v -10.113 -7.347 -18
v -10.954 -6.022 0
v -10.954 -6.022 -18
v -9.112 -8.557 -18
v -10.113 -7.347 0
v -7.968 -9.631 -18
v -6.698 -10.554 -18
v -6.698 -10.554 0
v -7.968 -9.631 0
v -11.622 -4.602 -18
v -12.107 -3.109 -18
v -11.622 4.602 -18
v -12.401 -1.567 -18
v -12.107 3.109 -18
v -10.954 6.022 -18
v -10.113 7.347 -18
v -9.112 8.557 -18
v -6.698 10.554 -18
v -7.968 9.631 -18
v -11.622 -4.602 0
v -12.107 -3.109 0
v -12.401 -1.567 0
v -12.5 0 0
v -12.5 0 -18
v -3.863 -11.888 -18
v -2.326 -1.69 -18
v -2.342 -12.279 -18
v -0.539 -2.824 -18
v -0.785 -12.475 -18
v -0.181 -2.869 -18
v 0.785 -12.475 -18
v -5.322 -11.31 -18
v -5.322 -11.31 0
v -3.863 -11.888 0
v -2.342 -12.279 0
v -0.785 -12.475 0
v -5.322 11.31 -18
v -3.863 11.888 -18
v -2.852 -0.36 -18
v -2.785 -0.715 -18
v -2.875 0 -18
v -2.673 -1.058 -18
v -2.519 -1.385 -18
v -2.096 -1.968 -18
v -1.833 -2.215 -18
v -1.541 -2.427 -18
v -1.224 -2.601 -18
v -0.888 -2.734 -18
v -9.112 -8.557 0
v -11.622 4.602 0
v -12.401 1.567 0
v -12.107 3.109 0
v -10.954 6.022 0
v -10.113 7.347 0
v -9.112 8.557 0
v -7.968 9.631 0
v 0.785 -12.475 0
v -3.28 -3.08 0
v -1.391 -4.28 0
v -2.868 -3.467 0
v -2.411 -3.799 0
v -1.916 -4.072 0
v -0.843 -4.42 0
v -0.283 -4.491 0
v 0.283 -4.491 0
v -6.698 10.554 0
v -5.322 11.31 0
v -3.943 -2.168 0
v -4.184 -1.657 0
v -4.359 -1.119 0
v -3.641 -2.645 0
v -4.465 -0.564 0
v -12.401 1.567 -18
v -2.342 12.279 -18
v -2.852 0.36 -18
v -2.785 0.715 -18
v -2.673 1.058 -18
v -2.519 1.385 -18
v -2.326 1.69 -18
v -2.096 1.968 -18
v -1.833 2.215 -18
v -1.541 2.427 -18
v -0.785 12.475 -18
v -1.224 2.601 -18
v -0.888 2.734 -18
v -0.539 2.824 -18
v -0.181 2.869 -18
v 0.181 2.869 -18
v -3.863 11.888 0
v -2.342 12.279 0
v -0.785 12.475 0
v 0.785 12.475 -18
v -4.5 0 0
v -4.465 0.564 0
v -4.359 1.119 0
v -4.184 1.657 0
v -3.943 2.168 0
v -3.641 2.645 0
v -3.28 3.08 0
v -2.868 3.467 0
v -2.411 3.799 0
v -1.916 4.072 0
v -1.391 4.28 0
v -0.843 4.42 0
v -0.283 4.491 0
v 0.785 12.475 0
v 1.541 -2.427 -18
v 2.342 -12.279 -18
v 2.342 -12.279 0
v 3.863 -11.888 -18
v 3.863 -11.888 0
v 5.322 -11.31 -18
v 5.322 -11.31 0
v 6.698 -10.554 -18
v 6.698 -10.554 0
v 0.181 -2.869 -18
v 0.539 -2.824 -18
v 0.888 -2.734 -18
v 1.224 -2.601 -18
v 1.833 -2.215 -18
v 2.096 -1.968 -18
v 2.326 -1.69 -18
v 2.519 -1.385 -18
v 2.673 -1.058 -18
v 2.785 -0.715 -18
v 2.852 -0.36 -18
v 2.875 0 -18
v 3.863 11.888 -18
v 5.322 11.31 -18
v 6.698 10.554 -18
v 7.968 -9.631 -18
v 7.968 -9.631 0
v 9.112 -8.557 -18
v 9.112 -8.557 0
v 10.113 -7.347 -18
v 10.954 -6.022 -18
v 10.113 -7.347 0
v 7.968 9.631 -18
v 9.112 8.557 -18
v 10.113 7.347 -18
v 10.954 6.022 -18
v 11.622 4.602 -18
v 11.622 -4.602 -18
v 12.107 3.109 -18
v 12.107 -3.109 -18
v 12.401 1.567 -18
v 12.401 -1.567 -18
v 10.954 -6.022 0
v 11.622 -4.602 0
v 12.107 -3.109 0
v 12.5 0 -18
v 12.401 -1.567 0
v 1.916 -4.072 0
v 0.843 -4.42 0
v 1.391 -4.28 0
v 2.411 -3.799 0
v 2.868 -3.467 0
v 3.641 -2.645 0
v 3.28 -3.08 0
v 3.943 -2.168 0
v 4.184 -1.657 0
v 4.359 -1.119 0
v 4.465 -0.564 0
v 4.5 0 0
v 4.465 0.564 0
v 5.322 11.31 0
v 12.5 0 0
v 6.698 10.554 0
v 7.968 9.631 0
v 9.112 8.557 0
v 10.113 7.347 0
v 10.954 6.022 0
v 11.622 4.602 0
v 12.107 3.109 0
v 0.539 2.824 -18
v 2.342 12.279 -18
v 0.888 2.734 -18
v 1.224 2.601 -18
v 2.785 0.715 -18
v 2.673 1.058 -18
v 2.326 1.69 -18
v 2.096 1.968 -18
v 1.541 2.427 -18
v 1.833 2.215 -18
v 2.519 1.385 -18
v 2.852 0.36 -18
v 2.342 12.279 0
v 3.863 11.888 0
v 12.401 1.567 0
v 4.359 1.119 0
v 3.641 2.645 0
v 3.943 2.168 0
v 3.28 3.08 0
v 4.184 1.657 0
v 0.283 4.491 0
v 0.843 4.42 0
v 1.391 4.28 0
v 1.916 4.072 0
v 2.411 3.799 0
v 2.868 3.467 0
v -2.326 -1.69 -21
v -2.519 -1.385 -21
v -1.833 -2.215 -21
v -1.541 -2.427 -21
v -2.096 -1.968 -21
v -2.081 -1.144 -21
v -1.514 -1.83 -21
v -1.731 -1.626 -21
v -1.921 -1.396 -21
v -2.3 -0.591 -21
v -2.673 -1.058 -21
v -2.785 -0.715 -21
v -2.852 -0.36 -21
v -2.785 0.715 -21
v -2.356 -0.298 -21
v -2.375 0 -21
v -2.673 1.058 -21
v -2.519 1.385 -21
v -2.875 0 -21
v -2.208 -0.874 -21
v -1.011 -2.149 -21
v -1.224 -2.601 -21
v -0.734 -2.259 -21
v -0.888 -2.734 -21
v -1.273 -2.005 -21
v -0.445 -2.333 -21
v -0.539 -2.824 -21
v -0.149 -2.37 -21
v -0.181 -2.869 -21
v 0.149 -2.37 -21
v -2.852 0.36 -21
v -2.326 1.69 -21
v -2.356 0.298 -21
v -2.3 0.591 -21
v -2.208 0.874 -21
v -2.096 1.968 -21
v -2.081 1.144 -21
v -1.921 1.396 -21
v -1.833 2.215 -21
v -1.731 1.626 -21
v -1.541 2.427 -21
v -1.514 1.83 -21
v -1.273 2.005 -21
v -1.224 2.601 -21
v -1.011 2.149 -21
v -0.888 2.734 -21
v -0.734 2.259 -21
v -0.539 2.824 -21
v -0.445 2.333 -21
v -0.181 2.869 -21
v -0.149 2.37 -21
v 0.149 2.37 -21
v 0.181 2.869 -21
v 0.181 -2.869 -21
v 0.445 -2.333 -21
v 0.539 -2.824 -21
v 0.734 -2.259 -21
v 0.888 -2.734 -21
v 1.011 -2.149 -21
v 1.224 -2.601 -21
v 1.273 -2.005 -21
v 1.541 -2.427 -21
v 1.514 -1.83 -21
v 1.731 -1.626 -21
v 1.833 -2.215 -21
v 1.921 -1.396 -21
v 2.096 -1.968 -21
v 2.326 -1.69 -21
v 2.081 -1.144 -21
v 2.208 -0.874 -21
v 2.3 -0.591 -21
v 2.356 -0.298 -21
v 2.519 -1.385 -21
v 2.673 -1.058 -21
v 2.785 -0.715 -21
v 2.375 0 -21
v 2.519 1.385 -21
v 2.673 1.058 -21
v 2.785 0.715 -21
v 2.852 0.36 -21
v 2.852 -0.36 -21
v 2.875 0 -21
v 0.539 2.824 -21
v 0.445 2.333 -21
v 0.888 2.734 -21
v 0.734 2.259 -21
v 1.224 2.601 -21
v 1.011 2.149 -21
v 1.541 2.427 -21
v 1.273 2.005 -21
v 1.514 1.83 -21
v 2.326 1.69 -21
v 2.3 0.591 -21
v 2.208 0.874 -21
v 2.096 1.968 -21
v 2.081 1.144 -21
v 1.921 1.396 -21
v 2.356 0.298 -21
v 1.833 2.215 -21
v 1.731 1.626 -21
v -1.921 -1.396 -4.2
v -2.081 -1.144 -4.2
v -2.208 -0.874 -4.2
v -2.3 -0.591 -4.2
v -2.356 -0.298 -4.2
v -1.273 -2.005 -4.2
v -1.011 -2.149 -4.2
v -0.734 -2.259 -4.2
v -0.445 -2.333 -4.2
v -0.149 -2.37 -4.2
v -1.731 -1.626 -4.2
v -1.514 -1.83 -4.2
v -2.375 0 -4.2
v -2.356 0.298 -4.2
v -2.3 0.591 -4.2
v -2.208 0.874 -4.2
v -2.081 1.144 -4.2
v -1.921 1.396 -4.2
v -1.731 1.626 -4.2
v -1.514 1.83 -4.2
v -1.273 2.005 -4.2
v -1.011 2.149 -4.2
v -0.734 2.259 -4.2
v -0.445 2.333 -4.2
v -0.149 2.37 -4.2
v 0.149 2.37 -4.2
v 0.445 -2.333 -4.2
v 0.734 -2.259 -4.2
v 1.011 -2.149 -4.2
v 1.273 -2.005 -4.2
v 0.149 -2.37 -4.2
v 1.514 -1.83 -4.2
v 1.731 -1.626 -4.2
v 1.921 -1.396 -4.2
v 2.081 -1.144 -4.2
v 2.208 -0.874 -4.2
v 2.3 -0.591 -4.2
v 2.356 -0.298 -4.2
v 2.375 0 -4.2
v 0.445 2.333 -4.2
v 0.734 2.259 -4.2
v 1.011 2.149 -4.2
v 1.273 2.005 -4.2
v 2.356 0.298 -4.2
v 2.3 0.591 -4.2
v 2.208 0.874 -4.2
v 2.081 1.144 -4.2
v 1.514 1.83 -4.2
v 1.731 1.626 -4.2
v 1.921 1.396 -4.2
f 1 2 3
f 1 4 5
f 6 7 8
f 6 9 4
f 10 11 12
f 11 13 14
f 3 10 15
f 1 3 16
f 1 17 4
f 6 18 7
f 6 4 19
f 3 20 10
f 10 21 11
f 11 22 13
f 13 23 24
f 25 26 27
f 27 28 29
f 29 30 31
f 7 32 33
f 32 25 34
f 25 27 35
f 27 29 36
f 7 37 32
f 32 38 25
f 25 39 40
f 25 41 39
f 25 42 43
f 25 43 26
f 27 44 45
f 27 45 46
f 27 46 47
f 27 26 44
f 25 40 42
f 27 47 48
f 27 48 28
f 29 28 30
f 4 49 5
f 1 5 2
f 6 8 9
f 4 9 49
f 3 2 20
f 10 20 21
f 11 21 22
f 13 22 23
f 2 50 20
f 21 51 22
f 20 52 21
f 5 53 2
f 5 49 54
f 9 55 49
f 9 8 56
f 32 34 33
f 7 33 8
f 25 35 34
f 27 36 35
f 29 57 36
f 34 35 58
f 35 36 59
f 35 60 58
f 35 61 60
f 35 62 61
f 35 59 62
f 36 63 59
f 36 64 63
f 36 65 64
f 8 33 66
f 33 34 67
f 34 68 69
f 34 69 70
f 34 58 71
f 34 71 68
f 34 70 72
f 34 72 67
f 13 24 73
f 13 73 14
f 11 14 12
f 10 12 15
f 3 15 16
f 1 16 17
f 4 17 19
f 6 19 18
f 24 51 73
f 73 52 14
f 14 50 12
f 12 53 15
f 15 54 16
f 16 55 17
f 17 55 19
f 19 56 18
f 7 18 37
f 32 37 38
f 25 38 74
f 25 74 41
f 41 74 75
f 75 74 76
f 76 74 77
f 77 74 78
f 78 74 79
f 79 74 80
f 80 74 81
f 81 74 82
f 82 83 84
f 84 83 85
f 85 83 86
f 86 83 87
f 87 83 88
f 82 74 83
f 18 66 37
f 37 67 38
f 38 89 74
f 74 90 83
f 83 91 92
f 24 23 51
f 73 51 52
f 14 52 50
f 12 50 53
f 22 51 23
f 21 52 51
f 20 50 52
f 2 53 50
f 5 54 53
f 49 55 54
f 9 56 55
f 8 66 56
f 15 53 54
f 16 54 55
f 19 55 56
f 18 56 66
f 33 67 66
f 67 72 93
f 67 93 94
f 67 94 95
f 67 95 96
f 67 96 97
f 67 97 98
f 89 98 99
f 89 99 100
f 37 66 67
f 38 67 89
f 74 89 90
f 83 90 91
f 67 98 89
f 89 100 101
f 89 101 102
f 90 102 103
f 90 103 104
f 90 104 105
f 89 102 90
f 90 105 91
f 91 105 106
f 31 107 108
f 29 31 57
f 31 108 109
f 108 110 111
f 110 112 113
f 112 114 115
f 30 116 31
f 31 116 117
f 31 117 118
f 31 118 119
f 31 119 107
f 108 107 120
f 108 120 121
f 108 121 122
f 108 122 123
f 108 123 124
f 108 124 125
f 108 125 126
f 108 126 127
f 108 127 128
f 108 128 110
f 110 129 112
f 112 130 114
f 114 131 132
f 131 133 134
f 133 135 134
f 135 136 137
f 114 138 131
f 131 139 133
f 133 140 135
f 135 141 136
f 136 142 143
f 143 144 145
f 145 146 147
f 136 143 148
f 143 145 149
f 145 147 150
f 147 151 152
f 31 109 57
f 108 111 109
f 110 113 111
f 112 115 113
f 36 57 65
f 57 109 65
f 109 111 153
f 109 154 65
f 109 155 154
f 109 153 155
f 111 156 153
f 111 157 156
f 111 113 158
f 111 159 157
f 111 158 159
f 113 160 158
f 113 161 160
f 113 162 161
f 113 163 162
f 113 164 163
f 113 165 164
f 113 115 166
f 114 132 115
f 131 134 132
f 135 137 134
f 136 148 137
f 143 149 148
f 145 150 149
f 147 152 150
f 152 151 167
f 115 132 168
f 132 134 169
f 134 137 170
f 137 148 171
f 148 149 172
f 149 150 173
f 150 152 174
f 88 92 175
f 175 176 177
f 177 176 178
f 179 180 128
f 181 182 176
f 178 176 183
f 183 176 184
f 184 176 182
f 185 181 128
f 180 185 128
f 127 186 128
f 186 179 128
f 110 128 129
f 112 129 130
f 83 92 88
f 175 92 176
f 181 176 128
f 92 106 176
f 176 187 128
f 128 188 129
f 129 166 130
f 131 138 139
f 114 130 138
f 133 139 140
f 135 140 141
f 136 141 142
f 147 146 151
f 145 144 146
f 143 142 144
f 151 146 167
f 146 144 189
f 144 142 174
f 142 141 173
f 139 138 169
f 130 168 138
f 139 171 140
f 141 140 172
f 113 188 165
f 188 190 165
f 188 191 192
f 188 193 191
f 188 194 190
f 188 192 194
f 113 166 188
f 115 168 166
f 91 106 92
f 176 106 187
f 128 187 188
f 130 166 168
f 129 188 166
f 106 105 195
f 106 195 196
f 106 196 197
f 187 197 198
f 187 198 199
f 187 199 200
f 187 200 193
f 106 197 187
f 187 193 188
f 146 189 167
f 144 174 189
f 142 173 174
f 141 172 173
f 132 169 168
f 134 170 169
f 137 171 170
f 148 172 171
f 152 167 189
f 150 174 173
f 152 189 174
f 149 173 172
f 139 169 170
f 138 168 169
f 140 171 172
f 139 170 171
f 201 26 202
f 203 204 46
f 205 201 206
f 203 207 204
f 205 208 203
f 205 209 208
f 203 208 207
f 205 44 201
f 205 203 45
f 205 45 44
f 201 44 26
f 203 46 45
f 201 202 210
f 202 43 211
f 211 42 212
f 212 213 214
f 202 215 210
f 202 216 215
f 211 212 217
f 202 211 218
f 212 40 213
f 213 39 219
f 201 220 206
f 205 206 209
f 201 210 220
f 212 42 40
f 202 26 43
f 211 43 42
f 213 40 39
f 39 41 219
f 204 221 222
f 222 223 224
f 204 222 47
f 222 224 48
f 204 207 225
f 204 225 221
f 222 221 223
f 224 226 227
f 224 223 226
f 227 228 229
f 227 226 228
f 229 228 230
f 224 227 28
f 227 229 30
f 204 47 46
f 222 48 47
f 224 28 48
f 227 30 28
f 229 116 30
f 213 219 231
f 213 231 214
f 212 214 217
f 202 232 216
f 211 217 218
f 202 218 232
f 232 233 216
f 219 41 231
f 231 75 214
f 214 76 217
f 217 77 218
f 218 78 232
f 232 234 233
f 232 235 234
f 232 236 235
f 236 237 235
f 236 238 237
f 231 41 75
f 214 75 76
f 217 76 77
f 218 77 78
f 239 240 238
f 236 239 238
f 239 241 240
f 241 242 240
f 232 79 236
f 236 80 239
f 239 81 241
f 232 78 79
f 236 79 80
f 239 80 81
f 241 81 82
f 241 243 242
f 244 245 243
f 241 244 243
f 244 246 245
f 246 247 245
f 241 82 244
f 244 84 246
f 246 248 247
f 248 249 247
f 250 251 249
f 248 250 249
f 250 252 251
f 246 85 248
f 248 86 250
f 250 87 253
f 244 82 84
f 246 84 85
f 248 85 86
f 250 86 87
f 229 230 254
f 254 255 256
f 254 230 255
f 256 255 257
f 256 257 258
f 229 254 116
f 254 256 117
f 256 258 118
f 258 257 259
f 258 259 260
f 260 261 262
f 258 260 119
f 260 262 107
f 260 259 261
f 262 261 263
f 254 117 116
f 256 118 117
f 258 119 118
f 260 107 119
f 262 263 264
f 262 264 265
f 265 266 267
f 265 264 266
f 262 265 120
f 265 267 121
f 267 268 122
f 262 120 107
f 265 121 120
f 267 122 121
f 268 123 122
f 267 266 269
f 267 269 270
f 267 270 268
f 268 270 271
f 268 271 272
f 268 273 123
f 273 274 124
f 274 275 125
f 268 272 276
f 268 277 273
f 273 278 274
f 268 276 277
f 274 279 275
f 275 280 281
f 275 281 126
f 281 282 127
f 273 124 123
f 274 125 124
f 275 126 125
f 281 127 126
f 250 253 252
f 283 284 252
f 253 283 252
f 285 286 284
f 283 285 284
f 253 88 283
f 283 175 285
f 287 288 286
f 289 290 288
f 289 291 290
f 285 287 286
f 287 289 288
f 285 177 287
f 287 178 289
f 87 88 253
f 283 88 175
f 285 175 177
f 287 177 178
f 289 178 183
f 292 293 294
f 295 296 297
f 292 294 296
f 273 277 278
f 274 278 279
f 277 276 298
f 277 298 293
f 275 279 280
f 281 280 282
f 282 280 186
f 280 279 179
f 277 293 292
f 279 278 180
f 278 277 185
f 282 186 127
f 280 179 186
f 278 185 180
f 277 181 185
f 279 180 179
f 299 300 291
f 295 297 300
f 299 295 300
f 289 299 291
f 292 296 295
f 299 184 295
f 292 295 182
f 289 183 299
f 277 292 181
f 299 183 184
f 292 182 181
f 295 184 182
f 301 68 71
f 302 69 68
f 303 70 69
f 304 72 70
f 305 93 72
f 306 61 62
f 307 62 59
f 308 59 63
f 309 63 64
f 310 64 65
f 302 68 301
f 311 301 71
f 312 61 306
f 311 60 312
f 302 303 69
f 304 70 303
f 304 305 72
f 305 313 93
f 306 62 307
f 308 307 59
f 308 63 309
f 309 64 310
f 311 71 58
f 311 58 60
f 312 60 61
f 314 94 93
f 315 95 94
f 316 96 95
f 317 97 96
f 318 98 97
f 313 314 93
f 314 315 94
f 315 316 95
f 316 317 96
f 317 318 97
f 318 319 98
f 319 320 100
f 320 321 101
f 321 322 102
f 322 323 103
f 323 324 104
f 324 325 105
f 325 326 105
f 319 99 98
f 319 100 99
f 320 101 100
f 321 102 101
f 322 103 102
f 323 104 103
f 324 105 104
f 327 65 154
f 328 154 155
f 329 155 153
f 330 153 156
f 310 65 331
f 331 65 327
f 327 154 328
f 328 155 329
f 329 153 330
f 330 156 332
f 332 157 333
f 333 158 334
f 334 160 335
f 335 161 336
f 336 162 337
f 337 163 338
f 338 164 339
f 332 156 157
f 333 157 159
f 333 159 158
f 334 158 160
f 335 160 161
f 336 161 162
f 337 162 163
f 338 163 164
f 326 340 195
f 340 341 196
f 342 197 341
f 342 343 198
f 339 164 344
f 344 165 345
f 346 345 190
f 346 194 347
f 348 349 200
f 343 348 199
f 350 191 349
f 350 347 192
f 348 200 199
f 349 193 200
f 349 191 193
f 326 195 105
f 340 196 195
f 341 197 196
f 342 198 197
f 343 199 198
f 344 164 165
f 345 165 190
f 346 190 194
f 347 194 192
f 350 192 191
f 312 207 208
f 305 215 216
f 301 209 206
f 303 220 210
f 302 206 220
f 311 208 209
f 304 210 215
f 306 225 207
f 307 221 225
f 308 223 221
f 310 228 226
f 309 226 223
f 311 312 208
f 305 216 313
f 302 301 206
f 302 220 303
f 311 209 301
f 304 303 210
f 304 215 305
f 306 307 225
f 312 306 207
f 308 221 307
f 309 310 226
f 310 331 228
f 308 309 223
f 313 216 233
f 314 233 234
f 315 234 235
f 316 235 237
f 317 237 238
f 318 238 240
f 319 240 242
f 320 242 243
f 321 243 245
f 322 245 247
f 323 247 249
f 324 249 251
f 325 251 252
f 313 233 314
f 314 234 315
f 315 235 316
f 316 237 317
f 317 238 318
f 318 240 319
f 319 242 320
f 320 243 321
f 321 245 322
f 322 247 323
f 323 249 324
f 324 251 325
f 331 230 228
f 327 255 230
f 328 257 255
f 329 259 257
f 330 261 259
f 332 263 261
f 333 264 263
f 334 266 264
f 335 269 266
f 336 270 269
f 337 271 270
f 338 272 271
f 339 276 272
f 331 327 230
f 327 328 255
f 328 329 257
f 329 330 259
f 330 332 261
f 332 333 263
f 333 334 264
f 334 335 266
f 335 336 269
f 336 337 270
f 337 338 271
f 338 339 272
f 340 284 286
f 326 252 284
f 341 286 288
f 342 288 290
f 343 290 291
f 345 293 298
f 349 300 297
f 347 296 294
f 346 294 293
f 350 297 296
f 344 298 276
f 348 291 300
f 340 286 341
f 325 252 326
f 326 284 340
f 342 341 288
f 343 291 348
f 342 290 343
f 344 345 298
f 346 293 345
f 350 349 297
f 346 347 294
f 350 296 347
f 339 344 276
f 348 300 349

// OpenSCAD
$fn = 50;

difference() {
	union() {
		translate(v = [0, 0, -18.0]) {
			cylinder(h = 18, r = 12.5);
		}
		#translate(v = [0, 0, -21.0]) {
			cylinder(h = 21, r = 2.875);
		}
	}
	union() {
		translate(v = [0, 0, 0]) {
			rotate(a = [0, 0, 0]) {
				difference() {
					union() {
						translate(v = [0, 0, -21.0]) {
							cylinder(h = 21, r = 2.25);
						}
						translate(v = [0, 0, -4.2]) {
							cylinder(h = 4.2, r1 = 2.375, r2 = 4.5);
						}
						translate(v = [0, 0, -21.0]) {
							cylinder(h = 21, r = 2.375);
						}
						translate(v = [0, 0, -21.0]) {
							cylinder(h = 21, r = 2.25);
						}
					}
					union();
				}
			}
		}
	}
}
